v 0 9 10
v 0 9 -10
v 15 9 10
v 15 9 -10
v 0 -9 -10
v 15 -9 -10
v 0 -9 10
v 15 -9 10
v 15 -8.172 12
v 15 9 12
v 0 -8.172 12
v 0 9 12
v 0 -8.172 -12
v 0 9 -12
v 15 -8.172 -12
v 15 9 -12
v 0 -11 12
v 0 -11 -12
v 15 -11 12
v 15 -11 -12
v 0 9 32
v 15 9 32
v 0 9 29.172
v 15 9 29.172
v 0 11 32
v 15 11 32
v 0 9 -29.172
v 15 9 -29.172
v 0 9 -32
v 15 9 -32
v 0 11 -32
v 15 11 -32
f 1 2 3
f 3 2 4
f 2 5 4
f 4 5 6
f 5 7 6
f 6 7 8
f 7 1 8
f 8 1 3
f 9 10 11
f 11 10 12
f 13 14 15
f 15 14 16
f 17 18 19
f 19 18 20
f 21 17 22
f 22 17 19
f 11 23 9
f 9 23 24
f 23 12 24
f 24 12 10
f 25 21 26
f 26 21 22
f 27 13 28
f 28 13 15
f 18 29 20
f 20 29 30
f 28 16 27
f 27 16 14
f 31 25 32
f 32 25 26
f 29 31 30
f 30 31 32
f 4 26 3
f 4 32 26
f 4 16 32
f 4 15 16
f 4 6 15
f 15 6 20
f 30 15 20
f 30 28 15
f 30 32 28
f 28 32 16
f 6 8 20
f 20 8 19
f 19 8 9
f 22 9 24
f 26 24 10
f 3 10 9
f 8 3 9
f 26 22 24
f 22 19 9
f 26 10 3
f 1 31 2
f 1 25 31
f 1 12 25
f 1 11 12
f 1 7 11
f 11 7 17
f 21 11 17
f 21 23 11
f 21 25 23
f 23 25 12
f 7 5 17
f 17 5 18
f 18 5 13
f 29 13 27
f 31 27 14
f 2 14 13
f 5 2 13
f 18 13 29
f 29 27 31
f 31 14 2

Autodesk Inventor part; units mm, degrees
ref_plane "YZ Plane" through (0, 0, 0) normal (1, 0, 0) x (0, 1, 0)
ref_plane "XZ Plane" through (0, 0, 0) normal (0, 1, 0) x (-1, 0, 0)
ref_plane "XY Plane" through (0, 0, 0) normal (0, 0, 1) x (1, 0, 0)
sketch "Sketch1" plane through (0, 0, 0) normal (1, 0, 0) x (0, 1, 0)
  line L0 (9, 10) -> (-9, 10)
  line L1 (-9, 10) -> (-9, -10)
  line L2 (-9, -10) -> (9, -10)
  line L3 (9, -10) -> (9, 10)
  line L4 (9, 10) -> (-9, -10) construction
  line L5 (-9, 10) -> (9, -10) construction
  line L6 (-11, 12) -> (11, 12)
  line L7 (11, 12) -> (11, -12)
  line L8 (11, -12) -> (-11, -12)
  line L9 (-11, -12) -> (-11, 12)
  line L10 (-11, 12) -> (9, 32)
  line L11 (-11, 12) -> (21.2472, 12) construction
  line L12 (11, 12) -> (11, 32)
  line L13 (-11, -12) -> (9, -32)
  line L14 (-11, -12) -> (29.5291, -12) construction
  line L15 (11, -12) -> (11, -32)
  line L16 (9, 12) -> (9, 29.1716)
  line L17 (9, 29.1716) -> (-8.1716, 12)
  line L18 (-8.1716, -12) -> (9, -29.1716)
  line L19 (9, -29.1716) -> (9, -12)
  line L20 (11, 12) -> (11, 10)
  line L21 (11, 12) -> (9, 12)
  line L22 (-8.1716, 12) -> (-11, 12)
  line L23 (-11, -12) -> (-8.1716, -12)
  line L24 (11, -12) -> (9, -12)
  line L25 (9, 29.1716) -> (9, 32)
  line L26 (9, 32) -> (11, 32)
  line L27 (9, -29.1716) -> (11, -29.1716)
  line L28 (9, -29.1716) -> (9, -32)
  line L29 (9, -32) -> (11, -32)
  line L30 (11, 12) -> (9, 12)
  line L31 (-8.1716, 12) -> (-11, 12)
  line L32 (-8.1716, 12) -> (9, 29.1716)
  line L33 (-8.1716, -12) -> (9, -12)
  line L34 (11, -12) -> (9, -12)
  point P0 (0, 0)
  dimension "d0" = 18
  dimension "d1" = 20
  dimension "d2" = 2
  dimension "d3" = 45
  dimension "d4" = 45
  dimension "d5" = 2
  dimension "d6" = 2
extrude "Extrusion2" add sketch "Sketch1" along normal blind 15 contours L10 L25 L17 L6 | L6 L7 L8 L9 | L8 L18 L28 L13 | L26 L12 L6 L16 L25 | L28 L27 L15 L29 | L8 L15 L27 L19
properties part number "Motor_Shroud"
